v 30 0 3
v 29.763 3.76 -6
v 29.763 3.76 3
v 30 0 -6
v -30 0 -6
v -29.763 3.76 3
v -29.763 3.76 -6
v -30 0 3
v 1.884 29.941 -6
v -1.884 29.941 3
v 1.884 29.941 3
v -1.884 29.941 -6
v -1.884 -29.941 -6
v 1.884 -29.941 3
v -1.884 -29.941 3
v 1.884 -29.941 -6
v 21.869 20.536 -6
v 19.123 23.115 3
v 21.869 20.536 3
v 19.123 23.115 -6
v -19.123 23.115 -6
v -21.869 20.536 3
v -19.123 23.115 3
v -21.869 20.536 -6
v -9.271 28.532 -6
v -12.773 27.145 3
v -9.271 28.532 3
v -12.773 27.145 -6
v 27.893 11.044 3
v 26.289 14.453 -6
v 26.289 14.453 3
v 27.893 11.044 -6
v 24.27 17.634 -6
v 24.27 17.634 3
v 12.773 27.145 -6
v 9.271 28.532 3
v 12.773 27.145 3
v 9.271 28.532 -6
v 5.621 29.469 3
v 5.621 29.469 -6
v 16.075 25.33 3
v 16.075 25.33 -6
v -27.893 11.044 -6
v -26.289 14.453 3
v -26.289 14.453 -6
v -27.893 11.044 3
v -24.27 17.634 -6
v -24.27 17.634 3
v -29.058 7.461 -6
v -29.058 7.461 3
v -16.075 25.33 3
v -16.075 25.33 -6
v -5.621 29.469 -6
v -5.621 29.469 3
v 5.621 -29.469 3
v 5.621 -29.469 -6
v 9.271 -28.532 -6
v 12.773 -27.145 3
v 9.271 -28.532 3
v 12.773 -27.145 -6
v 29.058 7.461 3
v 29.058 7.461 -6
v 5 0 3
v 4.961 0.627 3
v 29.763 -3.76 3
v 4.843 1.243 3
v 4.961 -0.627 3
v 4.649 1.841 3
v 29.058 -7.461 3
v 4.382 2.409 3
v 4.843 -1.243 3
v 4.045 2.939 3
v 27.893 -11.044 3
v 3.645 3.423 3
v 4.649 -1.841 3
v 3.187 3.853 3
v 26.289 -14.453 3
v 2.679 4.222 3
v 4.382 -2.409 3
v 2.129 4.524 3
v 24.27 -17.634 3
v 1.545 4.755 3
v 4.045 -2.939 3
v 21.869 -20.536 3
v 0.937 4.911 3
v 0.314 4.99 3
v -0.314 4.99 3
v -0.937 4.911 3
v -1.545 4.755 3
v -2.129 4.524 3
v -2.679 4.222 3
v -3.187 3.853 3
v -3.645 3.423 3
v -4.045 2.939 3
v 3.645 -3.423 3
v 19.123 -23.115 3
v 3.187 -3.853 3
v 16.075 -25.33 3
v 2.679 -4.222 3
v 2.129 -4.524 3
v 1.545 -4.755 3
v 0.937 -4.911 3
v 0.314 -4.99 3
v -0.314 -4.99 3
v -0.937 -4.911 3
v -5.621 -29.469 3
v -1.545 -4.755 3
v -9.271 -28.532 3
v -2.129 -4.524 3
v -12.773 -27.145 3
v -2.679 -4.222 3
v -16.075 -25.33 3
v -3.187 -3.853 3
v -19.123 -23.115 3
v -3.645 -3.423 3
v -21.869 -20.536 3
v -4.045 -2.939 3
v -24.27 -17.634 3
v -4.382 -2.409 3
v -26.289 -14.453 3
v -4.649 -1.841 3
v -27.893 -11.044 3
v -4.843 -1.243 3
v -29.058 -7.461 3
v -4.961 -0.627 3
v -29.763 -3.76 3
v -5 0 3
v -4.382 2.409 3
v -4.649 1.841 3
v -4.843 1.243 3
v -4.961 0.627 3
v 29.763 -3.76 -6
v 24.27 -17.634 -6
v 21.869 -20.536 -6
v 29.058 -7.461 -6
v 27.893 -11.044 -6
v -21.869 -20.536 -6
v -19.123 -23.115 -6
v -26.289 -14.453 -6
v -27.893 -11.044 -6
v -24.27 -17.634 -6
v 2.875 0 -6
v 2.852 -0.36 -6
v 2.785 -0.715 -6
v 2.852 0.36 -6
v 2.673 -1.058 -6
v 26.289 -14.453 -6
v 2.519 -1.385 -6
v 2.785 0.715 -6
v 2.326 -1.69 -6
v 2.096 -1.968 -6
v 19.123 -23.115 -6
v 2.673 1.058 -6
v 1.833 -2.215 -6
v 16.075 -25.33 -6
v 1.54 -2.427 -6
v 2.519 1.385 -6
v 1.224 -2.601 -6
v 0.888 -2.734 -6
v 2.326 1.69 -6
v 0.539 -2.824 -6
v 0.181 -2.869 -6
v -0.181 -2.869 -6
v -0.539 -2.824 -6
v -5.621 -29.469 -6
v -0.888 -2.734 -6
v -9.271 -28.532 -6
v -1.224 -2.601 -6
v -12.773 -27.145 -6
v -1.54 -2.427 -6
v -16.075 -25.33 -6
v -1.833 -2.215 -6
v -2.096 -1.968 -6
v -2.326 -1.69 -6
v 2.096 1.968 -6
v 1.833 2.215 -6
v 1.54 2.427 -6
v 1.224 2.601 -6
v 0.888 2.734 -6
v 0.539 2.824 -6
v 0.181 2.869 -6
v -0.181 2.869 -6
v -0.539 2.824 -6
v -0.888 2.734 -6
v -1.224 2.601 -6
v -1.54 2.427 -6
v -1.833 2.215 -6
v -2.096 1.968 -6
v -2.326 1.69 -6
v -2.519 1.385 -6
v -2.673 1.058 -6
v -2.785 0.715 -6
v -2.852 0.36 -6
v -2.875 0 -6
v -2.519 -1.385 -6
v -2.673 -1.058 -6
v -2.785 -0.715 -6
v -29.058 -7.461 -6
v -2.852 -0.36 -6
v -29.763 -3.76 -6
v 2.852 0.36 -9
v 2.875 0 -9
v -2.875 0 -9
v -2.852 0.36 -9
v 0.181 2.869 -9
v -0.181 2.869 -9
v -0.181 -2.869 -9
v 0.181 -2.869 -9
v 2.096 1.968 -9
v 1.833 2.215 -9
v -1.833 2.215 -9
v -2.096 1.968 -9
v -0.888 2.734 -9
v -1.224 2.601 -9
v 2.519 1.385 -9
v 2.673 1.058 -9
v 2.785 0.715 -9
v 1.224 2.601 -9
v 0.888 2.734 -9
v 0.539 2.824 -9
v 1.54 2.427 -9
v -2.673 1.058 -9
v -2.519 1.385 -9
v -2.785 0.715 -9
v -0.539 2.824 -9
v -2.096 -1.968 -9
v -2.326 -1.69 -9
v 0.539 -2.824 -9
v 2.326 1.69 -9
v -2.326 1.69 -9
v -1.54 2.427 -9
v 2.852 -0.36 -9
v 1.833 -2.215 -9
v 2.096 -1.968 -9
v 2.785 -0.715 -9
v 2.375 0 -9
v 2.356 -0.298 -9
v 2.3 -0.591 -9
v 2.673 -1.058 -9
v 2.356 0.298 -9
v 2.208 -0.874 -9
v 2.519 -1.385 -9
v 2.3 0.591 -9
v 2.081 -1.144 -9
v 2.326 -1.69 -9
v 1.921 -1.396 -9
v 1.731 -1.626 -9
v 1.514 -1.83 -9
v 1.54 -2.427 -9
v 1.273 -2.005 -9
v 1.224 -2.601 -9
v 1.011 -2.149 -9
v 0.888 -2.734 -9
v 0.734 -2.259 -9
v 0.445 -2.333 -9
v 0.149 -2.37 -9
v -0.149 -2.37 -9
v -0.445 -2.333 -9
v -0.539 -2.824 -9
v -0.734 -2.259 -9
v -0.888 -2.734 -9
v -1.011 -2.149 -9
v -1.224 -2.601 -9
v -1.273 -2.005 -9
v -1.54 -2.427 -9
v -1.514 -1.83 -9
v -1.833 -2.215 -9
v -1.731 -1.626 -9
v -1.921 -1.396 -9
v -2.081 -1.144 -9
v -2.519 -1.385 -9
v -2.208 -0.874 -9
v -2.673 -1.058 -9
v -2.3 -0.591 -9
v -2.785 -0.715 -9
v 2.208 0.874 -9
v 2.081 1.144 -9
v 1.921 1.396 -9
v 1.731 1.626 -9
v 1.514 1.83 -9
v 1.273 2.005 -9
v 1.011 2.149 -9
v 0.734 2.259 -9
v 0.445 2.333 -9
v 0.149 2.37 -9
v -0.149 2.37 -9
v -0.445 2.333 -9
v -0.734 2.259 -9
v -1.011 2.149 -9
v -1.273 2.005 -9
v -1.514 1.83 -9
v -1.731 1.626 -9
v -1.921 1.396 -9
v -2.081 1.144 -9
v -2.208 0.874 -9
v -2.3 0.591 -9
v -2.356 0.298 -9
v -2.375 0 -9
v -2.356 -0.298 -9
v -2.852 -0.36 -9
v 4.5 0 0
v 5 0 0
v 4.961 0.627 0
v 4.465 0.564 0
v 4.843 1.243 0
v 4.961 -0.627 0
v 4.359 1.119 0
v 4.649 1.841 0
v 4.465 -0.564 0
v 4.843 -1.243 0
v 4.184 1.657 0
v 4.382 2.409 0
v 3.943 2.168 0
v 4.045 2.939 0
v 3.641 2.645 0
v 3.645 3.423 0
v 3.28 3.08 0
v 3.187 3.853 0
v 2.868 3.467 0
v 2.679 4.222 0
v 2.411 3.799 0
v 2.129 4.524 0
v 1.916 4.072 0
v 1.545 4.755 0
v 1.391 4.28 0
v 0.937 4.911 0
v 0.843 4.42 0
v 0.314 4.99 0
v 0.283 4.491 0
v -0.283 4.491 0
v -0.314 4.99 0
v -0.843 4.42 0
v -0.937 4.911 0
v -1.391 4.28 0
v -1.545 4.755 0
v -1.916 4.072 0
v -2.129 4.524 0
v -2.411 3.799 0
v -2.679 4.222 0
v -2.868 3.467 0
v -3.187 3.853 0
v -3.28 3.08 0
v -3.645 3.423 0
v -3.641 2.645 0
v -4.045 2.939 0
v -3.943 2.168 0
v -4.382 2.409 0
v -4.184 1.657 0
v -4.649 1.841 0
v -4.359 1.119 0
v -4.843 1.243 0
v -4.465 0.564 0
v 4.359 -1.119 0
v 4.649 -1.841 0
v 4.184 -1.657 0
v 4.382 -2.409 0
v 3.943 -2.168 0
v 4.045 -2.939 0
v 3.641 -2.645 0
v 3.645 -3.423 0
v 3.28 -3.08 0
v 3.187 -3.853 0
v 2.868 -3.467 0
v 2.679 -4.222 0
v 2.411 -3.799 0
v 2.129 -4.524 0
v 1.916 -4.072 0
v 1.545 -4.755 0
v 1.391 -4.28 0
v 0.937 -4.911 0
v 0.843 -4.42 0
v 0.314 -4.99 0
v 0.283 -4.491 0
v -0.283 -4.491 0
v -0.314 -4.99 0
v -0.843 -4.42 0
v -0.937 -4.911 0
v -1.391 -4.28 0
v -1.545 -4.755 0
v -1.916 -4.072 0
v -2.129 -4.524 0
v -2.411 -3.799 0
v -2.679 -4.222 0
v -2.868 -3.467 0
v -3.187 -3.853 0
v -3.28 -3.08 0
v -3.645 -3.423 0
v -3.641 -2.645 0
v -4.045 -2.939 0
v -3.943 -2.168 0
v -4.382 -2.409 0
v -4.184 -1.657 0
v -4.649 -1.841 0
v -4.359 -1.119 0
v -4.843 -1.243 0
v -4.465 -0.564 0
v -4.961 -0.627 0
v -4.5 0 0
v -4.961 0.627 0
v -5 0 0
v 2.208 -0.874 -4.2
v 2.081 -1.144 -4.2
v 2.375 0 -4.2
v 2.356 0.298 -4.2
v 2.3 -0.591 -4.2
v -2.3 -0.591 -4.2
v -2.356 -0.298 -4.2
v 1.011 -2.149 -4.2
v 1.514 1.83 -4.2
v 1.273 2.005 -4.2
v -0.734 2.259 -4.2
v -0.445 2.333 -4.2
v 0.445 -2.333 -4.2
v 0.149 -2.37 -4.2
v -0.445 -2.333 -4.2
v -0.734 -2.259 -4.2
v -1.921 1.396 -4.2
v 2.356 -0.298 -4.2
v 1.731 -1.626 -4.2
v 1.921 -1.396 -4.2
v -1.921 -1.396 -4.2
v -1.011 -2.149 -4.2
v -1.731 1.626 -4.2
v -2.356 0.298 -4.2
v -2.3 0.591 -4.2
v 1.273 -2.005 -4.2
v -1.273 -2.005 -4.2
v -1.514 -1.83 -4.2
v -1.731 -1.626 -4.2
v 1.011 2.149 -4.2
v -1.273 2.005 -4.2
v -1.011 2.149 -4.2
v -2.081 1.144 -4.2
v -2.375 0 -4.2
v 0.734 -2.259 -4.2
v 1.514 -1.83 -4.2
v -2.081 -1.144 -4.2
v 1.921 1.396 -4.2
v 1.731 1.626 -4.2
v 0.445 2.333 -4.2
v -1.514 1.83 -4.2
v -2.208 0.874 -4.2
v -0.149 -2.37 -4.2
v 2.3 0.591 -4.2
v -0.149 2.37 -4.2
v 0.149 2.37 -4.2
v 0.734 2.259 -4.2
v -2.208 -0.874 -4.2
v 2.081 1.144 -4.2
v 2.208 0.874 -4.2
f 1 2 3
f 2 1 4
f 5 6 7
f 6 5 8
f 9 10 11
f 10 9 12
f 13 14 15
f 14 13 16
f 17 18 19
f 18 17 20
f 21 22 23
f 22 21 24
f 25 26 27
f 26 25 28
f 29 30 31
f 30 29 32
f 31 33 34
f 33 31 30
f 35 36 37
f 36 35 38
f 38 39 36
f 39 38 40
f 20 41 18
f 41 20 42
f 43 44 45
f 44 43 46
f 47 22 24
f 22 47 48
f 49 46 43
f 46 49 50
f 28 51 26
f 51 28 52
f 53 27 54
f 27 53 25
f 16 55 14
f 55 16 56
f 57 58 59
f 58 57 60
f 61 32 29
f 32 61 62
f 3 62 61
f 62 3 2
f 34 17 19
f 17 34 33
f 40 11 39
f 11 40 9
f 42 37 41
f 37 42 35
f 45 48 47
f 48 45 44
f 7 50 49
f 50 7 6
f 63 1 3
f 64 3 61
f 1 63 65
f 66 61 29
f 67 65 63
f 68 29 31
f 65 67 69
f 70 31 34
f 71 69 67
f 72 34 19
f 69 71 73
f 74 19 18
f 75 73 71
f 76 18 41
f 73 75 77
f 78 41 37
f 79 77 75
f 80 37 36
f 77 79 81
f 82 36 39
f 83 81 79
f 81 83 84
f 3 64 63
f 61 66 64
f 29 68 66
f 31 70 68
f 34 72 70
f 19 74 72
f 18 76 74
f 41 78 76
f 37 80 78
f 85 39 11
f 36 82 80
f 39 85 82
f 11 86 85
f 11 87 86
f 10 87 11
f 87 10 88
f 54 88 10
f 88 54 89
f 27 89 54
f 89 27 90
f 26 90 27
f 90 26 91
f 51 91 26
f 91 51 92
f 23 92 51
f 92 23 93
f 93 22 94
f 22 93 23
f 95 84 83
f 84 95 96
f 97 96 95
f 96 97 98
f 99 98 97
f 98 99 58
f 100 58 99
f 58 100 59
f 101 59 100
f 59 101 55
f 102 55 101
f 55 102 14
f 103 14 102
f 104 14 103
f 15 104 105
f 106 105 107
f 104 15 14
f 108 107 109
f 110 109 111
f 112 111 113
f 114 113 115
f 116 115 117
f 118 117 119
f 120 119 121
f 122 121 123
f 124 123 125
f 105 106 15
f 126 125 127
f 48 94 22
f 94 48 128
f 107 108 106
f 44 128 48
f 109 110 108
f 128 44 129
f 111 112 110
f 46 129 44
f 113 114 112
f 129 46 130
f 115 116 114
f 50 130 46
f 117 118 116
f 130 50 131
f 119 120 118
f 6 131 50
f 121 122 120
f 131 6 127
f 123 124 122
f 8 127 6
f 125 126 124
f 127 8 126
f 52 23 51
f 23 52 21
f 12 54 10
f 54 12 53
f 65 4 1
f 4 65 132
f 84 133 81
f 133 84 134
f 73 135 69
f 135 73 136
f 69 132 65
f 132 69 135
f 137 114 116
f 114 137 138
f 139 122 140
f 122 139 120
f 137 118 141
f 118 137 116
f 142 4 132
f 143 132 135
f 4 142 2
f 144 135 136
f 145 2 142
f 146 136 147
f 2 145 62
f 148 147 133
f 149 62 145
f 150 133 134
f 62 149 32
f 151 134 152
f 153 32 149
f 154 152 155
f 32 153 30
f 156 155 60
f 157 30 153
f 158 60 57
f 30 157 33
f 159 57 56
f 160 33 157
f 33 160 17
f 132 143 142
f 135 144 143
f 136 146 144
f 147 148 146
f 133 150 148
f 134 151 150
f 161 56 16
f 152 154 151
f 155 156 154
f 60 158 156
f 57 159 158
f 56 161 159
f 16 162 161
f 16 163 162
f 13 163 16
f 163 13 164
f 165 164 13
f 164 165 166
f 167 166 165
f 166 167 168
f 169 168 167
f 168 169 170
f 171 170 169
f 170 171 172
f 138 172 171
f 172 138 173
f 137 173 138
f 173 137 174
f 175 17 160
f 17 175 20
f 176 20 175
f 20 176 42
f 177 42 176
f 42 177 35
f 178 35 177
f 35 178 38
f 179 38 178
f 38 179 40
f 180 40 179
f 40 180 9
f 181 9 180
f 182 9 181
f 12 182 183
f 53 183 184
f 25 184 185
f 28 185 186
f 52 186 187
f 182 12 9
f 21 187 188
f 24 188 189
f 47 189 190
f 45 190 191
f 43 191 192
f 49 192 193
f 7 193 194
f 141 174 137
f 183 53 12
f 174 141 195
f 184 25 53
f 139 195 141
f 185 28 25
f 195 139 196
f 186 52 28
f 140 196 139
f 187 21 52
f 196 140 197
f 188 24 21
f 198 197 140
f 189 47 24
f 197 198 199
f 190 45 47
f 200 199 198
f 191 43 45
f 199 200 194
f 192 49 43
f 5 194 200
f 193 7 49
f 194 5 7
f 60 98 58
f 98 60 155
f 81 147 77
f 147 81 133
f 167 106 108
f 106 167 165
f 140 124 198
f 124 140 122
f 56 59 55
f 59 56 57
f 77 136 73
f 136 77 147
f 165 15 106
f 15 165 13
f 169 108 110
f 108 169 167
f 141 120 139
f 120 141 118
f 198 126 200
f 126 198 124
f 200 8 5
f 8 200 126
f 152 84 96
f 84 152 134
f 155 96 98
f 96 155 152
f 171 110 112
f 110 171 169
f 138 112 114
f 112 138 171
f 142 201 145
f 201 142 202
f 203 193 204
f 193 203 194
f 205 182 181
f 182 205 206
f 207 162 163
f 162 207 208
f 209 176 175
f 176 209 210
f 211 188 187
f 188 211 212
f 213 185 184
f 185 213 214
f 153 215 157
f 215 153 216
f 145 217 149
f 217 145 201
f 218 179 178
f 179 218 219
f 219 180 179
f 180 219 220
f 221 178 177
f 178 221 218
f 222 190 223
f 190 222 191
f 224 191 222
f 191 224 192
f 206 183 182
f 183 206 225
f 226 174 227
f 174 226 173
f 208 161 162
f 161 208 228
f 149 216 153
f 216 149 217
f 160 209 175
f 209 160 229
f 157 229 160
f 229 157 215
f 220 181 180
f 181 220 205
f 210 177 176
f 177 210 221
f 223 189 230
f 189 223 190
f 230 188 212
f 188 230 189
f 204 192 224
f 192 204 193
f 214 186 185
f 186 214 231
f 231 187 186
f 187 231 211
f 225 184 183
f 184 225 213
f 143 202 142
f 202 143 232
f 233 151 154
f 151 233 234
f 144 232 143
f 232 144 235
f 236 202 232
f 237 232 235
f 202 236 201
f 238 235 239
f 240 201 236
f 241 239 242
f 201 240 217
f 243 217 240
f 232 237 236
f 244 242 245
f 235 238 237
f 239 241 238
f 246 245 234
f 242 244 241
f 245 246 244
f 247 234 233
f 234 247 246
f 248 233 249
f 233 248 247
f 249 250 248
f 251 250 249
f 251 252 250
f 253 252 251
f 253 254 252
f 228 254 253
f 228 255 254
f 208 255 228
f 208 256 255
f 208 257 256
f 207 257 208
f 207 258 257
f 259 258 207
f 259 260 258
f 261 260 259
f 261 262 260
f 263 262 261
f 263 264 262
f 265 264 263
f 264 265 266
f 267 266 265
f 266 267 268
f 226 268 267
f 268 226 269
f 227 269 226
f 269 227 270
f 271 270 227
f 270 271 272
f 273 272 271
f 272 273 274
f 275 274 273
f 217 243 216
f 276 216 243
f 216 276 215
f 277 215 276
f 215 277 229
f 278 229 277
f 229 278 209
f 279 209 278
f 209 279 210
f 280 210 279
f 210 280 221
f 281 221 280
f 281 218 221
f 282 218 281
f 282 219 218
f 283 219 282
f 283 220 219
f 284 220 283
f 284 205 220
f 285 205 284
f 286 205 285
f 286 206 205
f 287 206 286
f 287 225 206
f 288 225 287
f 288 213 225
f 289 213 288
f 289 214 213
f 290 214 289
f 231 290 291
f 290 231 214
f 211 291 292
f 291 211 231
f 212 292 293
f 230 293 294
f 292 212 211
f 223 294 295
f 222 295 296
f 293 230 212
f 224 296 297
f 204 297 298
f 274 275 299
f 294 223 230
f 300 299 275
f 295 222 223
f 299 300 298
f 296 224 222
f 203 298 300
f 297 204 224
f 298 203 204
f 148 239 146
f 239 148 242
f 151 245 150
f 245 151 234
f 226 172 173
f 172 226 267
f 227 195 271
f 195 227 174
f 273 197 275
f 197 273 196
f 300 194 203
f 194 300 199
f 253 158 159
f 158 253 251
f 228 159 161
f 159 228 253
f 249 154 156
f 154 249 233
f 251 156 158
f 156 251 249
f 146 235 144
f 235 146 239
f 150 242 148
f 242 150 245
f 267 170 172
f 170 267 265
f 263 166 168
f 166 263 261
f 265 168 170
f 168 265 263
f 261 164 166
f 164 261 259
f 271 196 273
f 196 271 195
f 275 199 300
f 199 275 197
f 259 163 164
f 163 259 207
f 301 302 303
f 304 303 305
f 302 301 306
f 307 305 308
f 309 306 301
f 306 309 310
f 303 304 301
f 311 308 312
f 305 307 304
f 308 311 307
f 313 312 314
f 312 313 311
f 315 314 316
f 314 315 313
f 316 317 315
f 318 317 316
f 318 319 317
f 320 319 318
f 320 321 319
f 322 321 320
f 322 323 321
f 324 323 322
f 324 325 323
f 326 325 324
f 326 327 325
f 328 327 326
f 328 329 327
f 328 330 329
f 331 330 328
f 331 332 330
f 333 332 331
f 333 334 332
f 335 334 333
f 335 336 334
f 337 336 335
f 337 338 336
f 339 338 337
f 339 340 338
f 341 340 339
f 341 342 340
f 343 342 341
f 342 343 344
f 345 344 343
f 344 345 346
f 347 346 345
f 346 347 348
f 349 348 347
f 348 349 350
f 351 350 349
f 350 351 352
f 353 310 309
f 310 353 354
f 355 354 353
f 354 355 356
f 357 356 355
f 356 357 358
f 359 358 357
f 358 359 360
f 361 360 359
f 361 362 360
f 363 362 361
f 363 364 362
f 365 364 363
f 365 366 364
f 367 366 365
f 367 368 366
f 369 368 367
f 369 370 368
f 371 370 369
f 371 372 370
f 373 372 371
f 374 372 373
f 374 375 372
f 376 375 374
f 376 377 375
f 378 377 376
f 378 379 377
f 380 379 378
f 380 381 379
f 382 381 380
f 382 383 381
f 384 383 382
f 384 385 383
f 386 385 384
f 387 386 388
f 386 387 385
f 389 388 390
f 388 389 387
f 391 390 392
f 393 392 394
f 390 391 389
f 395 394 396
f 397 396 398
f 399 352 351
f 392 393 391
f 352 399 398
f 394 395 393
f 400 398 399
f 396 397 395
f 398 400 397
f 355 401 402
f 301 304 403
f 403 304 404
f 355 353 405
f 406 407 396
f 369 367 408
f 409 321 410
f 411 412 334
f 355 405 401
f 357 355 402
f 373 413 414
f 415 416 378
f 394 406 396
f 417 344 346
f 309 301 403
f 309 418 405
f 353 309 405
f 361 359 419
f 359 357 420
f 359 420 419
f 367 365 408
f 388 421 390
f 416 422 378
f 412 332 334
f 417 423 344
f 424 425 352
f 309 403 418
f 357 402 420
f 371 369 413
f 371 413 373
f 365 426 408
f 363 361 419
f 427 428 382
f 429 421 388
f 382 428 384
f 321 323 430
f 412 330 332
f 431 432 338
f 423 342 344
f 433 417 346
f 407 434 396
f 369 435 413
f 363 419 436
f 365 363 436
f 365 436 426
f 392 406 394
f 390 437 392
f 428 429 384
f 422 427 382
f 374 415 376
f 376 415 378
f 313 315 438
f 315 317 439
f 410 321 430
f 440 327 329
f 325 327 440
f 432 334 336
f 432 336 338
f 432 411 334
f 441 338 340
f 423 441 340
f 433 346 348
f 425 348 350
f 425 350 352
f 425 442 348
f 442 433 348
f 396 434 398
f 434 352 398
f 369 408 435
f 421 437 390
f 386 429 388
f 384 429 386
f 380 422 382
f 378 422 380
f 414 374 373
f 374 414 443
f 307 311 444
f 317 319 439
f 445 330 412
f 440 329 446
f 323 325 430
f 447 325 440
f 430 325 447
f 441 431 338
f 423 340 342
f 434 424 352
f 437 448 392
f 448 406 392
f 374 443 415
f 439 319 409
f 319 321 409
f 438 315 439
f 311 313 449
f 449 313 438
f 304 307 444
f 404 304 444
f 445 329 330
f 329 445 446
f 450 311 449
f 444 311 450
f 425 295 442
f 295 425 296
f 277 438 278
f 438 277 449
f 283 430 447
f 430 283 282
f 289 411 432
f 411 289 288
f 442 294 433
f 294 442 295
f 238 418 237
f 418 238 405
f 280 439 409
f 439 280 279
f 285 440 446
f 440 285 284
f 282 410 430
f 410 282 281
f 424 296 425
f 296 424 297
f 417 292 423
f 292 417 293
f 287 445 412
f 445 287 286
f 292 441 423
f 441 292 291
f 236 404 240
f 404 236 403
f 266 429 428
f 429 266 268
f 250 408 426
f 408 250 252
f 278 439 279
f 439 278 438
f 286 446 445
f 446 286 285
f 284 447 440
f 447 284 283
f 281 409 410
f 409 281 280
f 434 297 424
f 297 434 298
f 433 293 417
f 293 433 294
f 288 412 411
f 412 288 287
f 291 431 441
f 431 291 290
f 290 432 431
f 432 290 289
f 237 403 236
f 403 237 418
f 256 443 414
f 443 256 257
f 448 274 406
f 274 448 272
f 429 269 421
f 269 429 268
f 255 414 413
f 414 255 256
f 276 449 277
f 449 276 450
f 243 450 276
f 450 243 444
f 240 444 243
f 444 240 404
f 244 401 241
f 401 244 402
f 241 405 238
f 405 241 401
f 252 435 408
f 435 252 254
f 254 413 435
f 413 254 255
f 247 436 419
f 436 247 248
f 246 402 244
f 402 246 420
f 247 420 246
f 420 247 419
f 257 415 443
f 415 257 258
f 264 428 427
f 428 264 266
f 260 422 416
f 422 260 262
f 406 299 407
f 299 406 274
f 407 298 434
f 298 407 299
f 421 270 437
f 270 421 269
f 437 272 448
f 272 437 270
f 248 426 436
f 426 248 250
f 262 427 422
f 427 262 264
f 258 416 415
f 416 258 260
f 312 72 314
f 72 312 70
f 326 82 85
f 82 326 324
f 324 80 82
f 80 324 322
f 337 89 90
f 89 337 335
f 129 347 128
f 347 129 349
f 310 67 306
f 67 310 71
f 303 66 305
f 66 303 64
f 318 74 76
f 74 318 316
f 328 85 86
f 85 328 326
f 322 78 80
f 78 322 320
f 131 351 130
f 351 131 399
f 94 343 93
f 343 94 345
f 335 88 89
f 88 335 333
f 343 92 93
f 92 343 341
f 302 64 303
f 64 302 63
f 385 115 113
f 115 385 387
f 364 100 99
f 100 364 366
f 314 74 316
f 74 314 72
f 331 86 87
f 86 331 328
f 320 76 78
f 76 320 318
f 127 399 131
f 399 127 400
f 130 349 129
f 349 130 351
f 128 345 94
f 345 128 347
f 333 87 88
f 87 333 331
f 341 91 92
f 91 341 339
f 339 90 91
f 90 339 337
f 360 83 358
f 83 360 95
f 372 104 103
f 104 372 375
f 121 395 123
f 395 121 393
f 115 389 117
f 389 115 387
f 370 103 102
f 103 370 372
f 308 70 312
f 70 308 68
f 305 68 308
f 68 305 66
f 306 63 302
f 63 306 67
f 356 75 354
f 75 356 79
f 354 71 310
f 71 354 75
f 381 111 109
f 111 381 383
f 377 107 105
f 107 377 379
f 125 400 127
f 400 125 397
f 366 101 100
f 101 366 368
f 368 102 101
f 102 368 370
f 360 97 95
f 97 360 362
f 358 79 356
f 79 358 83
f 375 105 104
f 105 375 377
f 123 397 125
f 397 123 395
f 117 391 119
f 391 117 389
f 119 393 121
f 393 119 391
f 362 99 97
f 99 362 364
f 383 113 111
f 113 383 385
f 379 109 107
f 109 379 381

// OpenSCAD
$fn = 50;


difference() {
	union() {
		translate(v = [0, 0, -6.0000000000]) {
			cylinder(h = 9, r = 30.0000000000);
		}
		#translate(v = [0, 0, -9.0000000000]) {
			cylinder(h = 9, r = 2.8750000000);
		}
	}
	union() {
		translate(v = [0, 0, 0]) {
			rotate(a = [0, 0, 0]) {
				difference() {
					union() {
						translate(v = [0, 0, -9.0000000000]) {
							cylinder(h = 9, r = 2.2500000000);
						}
						translate(v = [0, 0, -4.2000000000]) {
							cylinder(h = 4.2000000000, r1 = 2.3750000000, r2 = 4.5000000000);
						}
						translate(v = [0, 0, -9.0000000000]) {
							cylinder(h = 9, r = 2.3750000000);
						}
						translate(v = [0, 0, -9.0000000000]) {
							cylinder(h = 9, r = 2.2500000000);
						}
					}
					union();
				}
			}
		}
		#cylinder(h = 3, r = 5.0000000000);
	}
}
